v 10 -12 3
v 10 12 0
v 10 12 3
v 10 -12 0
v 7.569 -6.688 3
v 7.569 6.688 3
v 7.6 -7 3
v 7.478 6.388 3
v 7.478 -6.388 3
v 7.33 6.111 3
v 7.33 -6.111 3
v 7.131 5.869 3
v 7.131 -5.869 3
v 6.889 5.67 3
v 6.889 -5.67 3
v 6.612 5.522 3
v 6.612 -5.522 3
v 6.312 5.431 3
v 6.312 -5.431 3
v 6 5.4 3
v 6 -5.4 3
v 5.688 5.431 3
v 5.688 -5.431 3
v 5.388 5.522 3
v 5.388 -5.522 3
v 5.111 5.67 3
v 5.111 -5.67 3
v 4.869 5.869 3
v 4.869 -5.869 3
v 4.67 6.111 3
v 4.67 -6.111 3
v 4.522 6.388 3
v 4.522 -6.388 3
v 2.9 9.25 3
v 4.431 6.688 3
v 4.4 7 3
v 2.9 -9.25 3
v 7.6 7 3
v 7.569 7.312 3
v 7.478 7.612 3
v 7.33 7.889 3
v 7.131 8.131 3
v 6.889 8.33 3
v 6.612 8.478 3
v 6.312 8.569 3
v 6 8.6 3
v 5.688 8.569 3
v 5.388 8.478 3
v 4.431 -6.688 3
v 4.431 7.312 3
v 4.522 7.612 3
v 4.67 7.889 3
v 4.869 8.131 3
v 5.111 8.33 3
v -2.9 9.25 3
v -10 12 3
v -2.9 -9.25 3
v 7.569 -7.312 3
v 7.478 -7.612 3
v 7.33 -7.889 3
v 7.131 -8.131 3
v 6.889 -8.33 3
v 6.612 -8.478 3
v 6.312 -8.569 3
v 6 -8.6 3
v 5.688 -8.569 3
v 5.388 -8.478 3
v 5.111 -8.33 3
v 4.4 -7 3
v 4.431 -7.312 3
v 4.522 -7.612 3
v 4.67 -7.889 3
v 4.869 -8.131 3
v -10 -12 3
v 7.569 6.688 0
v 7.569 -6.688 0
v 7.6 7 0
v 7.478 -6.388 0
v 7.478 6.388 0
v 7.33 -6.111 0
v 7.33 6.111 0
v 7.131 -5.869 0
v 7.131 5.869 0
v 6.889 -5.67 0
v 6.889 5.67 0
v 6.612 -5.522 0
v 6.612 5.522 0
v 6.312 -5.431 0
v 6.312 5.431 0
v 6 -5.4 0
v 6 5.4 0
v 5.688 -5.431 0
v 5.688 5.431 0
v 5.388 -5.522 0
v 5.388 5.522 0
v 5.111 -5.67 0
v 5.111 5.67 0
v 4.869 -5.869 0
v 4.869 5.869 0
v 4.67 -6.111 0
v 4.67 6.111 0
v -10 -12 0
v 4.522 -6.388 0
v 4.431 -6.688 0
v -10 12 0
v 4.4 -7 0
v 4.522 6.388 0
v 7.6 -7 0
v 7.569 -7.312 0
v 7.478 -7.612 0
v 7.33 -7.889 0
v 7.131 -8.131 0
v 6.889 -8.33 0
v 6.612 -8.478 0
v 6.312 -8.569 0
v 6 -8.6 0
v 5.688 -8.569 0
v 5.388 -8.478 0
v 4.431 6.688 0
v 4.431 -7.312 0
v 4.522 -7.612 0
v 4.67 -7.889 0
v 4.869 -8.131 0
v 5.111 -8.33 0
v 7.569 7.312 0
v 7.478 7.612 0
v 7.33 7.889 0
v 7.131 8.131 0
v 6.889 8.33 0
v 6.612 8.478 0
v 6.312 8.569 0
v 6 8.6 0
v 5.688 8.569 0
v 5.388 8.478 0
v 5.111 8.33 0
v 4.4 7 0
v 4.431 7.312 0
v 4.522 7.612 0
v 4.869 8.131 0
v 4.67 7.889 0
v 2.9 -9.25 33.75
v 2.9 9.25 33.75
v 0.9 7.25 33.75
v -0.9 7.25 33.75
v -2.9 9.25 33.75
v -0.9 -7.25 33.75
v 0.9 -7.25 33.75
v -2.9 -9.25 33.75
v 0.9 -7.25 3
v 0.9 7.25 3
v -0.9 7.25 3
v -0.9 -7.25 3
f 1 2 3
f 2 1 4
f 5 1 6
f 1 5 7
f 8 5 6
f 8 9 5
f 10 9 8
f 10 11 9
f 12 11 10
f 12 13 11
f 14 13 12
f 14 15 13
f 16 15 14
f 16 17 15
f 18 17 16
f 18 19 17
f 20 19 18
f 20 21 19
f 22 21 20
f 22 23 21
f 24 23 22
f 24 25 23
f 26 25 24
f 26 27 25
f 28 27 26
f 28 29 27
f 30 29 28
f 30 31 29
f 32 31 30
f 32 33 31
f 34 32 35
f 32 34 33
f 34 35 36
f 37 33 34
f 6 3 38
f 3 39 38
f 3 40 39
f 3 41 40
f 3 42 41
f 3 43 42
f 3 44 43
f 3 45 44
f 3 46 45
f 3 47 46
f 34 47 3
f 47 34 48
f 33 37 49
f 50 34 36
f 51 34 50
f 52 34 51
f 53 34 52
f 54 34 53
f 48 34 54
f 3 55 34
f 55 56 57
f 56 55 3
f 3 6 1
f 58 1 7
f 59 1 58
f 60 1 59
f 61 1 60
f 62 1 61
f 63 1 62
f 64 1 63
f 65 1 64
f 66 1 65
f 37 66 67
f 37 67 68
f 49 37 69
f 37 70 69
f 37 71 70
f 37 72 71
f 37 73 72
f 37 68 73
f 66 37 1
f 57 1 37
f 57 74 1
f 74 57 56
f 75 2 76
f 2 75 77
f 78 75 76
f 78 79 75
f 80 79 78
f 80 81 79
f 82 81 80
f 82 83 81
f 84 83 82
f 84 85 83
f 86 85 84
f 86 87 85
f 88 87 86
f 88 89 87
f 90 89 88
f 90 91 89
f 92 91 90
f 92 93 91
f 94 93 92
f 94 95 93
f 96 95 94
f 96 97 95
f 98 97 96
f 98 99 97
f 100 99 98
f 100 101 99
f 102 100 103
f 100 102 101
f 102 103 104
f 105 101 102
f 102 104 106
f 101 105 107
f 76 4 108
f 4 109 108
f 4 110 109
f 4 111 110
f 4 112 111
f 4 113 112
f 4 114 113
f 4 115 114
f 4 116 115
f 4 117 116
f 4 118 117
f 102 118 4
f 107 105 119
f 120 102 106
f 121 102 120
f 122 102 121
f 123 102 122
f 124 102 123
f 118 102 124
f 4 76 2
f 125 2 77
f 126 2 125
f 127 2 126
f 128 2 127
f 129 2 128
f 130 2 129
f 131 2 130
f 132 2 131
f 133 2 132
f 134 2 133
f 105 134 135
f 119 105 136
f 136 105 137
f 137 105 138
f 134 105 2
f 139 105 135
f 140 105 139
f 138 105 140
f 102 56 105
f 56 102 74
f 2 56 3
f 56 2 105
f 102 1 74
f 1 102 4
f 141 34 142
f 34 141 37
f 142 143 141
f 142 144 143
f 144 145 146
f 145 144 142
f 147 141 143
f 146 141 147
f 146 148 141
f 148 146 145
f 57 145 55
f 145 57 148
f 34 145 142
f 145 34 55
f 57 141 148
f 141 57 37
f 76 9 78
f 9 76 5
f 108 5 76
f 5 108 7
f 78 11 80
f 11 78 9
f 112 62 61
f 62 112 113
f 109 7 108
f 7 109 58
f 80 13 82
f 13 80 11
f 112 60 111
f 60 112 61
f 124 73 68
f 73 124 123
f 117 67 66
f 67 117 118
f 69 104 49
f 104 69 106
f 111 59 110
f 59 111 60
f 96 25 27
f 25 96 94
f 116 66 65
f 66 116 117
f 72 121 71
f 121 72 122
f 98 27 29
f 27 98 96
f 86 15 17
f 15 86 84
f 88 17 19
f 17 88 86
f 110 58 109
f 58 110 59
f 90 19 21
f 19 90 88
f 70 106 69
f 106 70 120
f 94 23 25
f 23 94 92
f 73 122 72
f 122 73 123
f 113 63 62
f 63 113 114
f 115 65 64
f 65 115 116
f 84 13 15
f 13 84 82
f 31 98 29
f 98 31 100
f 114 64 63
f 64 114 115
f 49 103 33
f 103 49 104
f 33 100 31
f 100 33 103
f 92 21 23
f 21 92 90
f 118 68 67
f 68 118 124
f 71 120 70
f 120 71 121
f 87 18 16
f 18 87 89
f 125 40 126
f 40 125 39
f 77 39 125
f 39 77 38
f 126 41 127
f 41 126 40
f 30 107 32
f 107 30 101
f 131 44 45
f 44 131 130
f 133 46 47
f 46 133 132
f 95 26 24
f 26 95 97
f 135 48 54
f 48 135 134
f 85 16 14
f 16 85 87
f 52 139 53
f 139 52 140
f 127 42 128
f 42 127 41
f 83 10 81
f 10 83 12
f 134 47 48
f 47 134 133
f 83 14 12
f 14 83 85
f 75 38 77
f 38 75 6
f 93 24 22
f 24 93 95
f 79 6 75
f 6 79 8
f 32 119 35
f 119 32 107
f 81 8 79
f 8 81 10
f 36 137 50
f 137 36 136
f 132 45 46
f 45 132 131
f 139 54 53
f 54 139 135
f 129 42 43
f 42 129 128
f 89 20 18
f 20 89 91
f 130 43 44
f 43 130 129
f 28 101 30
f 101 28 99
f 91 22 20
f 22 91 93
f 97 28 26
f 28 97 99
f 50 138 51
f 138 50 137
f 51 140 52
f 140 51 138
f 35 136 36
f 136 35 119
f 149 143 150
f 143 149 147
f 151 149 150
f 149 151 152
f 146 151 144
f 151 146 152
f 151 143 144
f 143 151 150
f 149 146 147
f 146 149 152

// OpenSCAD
// Holder for an FC-51 IR obstacle sensor at the barrier line (vehicle presence / safety).
// The sensor looks across the lane at bumper height; screw the base to the floor.
pcb_l = 31.5; pcb_w = 14.5; pcb_t = 1.8;
sensor_height = 18;   // centre of the IR LEDs above the floor (bumper height of 1:24 cars)
wall = 2; $fn = 32;

module nosac_ir() {
    difference() {
        union() {
            translate([-10, -12, 0]) cube([20, 24, 3]);                         // base
            translate([-wall - pcb_t / 2, -pcb_w / 2 - wall, 0])
                cube([pcb_t + 2 * wall, pcb_w + 2 * wall, sensor_height + pcb_l / 2]);
        }
        // vertical slot, LEDs at the top looking sideways
        translate([-pcb_t / 2, -pcb_w / 2, 3]) cube([pcb_t, pcb_w, 60]);
        for (y = [-7, 7]) translate([6, y, -1]) cylinder(d = 3.2, h = 5);
    }
}

nosac_ir();
